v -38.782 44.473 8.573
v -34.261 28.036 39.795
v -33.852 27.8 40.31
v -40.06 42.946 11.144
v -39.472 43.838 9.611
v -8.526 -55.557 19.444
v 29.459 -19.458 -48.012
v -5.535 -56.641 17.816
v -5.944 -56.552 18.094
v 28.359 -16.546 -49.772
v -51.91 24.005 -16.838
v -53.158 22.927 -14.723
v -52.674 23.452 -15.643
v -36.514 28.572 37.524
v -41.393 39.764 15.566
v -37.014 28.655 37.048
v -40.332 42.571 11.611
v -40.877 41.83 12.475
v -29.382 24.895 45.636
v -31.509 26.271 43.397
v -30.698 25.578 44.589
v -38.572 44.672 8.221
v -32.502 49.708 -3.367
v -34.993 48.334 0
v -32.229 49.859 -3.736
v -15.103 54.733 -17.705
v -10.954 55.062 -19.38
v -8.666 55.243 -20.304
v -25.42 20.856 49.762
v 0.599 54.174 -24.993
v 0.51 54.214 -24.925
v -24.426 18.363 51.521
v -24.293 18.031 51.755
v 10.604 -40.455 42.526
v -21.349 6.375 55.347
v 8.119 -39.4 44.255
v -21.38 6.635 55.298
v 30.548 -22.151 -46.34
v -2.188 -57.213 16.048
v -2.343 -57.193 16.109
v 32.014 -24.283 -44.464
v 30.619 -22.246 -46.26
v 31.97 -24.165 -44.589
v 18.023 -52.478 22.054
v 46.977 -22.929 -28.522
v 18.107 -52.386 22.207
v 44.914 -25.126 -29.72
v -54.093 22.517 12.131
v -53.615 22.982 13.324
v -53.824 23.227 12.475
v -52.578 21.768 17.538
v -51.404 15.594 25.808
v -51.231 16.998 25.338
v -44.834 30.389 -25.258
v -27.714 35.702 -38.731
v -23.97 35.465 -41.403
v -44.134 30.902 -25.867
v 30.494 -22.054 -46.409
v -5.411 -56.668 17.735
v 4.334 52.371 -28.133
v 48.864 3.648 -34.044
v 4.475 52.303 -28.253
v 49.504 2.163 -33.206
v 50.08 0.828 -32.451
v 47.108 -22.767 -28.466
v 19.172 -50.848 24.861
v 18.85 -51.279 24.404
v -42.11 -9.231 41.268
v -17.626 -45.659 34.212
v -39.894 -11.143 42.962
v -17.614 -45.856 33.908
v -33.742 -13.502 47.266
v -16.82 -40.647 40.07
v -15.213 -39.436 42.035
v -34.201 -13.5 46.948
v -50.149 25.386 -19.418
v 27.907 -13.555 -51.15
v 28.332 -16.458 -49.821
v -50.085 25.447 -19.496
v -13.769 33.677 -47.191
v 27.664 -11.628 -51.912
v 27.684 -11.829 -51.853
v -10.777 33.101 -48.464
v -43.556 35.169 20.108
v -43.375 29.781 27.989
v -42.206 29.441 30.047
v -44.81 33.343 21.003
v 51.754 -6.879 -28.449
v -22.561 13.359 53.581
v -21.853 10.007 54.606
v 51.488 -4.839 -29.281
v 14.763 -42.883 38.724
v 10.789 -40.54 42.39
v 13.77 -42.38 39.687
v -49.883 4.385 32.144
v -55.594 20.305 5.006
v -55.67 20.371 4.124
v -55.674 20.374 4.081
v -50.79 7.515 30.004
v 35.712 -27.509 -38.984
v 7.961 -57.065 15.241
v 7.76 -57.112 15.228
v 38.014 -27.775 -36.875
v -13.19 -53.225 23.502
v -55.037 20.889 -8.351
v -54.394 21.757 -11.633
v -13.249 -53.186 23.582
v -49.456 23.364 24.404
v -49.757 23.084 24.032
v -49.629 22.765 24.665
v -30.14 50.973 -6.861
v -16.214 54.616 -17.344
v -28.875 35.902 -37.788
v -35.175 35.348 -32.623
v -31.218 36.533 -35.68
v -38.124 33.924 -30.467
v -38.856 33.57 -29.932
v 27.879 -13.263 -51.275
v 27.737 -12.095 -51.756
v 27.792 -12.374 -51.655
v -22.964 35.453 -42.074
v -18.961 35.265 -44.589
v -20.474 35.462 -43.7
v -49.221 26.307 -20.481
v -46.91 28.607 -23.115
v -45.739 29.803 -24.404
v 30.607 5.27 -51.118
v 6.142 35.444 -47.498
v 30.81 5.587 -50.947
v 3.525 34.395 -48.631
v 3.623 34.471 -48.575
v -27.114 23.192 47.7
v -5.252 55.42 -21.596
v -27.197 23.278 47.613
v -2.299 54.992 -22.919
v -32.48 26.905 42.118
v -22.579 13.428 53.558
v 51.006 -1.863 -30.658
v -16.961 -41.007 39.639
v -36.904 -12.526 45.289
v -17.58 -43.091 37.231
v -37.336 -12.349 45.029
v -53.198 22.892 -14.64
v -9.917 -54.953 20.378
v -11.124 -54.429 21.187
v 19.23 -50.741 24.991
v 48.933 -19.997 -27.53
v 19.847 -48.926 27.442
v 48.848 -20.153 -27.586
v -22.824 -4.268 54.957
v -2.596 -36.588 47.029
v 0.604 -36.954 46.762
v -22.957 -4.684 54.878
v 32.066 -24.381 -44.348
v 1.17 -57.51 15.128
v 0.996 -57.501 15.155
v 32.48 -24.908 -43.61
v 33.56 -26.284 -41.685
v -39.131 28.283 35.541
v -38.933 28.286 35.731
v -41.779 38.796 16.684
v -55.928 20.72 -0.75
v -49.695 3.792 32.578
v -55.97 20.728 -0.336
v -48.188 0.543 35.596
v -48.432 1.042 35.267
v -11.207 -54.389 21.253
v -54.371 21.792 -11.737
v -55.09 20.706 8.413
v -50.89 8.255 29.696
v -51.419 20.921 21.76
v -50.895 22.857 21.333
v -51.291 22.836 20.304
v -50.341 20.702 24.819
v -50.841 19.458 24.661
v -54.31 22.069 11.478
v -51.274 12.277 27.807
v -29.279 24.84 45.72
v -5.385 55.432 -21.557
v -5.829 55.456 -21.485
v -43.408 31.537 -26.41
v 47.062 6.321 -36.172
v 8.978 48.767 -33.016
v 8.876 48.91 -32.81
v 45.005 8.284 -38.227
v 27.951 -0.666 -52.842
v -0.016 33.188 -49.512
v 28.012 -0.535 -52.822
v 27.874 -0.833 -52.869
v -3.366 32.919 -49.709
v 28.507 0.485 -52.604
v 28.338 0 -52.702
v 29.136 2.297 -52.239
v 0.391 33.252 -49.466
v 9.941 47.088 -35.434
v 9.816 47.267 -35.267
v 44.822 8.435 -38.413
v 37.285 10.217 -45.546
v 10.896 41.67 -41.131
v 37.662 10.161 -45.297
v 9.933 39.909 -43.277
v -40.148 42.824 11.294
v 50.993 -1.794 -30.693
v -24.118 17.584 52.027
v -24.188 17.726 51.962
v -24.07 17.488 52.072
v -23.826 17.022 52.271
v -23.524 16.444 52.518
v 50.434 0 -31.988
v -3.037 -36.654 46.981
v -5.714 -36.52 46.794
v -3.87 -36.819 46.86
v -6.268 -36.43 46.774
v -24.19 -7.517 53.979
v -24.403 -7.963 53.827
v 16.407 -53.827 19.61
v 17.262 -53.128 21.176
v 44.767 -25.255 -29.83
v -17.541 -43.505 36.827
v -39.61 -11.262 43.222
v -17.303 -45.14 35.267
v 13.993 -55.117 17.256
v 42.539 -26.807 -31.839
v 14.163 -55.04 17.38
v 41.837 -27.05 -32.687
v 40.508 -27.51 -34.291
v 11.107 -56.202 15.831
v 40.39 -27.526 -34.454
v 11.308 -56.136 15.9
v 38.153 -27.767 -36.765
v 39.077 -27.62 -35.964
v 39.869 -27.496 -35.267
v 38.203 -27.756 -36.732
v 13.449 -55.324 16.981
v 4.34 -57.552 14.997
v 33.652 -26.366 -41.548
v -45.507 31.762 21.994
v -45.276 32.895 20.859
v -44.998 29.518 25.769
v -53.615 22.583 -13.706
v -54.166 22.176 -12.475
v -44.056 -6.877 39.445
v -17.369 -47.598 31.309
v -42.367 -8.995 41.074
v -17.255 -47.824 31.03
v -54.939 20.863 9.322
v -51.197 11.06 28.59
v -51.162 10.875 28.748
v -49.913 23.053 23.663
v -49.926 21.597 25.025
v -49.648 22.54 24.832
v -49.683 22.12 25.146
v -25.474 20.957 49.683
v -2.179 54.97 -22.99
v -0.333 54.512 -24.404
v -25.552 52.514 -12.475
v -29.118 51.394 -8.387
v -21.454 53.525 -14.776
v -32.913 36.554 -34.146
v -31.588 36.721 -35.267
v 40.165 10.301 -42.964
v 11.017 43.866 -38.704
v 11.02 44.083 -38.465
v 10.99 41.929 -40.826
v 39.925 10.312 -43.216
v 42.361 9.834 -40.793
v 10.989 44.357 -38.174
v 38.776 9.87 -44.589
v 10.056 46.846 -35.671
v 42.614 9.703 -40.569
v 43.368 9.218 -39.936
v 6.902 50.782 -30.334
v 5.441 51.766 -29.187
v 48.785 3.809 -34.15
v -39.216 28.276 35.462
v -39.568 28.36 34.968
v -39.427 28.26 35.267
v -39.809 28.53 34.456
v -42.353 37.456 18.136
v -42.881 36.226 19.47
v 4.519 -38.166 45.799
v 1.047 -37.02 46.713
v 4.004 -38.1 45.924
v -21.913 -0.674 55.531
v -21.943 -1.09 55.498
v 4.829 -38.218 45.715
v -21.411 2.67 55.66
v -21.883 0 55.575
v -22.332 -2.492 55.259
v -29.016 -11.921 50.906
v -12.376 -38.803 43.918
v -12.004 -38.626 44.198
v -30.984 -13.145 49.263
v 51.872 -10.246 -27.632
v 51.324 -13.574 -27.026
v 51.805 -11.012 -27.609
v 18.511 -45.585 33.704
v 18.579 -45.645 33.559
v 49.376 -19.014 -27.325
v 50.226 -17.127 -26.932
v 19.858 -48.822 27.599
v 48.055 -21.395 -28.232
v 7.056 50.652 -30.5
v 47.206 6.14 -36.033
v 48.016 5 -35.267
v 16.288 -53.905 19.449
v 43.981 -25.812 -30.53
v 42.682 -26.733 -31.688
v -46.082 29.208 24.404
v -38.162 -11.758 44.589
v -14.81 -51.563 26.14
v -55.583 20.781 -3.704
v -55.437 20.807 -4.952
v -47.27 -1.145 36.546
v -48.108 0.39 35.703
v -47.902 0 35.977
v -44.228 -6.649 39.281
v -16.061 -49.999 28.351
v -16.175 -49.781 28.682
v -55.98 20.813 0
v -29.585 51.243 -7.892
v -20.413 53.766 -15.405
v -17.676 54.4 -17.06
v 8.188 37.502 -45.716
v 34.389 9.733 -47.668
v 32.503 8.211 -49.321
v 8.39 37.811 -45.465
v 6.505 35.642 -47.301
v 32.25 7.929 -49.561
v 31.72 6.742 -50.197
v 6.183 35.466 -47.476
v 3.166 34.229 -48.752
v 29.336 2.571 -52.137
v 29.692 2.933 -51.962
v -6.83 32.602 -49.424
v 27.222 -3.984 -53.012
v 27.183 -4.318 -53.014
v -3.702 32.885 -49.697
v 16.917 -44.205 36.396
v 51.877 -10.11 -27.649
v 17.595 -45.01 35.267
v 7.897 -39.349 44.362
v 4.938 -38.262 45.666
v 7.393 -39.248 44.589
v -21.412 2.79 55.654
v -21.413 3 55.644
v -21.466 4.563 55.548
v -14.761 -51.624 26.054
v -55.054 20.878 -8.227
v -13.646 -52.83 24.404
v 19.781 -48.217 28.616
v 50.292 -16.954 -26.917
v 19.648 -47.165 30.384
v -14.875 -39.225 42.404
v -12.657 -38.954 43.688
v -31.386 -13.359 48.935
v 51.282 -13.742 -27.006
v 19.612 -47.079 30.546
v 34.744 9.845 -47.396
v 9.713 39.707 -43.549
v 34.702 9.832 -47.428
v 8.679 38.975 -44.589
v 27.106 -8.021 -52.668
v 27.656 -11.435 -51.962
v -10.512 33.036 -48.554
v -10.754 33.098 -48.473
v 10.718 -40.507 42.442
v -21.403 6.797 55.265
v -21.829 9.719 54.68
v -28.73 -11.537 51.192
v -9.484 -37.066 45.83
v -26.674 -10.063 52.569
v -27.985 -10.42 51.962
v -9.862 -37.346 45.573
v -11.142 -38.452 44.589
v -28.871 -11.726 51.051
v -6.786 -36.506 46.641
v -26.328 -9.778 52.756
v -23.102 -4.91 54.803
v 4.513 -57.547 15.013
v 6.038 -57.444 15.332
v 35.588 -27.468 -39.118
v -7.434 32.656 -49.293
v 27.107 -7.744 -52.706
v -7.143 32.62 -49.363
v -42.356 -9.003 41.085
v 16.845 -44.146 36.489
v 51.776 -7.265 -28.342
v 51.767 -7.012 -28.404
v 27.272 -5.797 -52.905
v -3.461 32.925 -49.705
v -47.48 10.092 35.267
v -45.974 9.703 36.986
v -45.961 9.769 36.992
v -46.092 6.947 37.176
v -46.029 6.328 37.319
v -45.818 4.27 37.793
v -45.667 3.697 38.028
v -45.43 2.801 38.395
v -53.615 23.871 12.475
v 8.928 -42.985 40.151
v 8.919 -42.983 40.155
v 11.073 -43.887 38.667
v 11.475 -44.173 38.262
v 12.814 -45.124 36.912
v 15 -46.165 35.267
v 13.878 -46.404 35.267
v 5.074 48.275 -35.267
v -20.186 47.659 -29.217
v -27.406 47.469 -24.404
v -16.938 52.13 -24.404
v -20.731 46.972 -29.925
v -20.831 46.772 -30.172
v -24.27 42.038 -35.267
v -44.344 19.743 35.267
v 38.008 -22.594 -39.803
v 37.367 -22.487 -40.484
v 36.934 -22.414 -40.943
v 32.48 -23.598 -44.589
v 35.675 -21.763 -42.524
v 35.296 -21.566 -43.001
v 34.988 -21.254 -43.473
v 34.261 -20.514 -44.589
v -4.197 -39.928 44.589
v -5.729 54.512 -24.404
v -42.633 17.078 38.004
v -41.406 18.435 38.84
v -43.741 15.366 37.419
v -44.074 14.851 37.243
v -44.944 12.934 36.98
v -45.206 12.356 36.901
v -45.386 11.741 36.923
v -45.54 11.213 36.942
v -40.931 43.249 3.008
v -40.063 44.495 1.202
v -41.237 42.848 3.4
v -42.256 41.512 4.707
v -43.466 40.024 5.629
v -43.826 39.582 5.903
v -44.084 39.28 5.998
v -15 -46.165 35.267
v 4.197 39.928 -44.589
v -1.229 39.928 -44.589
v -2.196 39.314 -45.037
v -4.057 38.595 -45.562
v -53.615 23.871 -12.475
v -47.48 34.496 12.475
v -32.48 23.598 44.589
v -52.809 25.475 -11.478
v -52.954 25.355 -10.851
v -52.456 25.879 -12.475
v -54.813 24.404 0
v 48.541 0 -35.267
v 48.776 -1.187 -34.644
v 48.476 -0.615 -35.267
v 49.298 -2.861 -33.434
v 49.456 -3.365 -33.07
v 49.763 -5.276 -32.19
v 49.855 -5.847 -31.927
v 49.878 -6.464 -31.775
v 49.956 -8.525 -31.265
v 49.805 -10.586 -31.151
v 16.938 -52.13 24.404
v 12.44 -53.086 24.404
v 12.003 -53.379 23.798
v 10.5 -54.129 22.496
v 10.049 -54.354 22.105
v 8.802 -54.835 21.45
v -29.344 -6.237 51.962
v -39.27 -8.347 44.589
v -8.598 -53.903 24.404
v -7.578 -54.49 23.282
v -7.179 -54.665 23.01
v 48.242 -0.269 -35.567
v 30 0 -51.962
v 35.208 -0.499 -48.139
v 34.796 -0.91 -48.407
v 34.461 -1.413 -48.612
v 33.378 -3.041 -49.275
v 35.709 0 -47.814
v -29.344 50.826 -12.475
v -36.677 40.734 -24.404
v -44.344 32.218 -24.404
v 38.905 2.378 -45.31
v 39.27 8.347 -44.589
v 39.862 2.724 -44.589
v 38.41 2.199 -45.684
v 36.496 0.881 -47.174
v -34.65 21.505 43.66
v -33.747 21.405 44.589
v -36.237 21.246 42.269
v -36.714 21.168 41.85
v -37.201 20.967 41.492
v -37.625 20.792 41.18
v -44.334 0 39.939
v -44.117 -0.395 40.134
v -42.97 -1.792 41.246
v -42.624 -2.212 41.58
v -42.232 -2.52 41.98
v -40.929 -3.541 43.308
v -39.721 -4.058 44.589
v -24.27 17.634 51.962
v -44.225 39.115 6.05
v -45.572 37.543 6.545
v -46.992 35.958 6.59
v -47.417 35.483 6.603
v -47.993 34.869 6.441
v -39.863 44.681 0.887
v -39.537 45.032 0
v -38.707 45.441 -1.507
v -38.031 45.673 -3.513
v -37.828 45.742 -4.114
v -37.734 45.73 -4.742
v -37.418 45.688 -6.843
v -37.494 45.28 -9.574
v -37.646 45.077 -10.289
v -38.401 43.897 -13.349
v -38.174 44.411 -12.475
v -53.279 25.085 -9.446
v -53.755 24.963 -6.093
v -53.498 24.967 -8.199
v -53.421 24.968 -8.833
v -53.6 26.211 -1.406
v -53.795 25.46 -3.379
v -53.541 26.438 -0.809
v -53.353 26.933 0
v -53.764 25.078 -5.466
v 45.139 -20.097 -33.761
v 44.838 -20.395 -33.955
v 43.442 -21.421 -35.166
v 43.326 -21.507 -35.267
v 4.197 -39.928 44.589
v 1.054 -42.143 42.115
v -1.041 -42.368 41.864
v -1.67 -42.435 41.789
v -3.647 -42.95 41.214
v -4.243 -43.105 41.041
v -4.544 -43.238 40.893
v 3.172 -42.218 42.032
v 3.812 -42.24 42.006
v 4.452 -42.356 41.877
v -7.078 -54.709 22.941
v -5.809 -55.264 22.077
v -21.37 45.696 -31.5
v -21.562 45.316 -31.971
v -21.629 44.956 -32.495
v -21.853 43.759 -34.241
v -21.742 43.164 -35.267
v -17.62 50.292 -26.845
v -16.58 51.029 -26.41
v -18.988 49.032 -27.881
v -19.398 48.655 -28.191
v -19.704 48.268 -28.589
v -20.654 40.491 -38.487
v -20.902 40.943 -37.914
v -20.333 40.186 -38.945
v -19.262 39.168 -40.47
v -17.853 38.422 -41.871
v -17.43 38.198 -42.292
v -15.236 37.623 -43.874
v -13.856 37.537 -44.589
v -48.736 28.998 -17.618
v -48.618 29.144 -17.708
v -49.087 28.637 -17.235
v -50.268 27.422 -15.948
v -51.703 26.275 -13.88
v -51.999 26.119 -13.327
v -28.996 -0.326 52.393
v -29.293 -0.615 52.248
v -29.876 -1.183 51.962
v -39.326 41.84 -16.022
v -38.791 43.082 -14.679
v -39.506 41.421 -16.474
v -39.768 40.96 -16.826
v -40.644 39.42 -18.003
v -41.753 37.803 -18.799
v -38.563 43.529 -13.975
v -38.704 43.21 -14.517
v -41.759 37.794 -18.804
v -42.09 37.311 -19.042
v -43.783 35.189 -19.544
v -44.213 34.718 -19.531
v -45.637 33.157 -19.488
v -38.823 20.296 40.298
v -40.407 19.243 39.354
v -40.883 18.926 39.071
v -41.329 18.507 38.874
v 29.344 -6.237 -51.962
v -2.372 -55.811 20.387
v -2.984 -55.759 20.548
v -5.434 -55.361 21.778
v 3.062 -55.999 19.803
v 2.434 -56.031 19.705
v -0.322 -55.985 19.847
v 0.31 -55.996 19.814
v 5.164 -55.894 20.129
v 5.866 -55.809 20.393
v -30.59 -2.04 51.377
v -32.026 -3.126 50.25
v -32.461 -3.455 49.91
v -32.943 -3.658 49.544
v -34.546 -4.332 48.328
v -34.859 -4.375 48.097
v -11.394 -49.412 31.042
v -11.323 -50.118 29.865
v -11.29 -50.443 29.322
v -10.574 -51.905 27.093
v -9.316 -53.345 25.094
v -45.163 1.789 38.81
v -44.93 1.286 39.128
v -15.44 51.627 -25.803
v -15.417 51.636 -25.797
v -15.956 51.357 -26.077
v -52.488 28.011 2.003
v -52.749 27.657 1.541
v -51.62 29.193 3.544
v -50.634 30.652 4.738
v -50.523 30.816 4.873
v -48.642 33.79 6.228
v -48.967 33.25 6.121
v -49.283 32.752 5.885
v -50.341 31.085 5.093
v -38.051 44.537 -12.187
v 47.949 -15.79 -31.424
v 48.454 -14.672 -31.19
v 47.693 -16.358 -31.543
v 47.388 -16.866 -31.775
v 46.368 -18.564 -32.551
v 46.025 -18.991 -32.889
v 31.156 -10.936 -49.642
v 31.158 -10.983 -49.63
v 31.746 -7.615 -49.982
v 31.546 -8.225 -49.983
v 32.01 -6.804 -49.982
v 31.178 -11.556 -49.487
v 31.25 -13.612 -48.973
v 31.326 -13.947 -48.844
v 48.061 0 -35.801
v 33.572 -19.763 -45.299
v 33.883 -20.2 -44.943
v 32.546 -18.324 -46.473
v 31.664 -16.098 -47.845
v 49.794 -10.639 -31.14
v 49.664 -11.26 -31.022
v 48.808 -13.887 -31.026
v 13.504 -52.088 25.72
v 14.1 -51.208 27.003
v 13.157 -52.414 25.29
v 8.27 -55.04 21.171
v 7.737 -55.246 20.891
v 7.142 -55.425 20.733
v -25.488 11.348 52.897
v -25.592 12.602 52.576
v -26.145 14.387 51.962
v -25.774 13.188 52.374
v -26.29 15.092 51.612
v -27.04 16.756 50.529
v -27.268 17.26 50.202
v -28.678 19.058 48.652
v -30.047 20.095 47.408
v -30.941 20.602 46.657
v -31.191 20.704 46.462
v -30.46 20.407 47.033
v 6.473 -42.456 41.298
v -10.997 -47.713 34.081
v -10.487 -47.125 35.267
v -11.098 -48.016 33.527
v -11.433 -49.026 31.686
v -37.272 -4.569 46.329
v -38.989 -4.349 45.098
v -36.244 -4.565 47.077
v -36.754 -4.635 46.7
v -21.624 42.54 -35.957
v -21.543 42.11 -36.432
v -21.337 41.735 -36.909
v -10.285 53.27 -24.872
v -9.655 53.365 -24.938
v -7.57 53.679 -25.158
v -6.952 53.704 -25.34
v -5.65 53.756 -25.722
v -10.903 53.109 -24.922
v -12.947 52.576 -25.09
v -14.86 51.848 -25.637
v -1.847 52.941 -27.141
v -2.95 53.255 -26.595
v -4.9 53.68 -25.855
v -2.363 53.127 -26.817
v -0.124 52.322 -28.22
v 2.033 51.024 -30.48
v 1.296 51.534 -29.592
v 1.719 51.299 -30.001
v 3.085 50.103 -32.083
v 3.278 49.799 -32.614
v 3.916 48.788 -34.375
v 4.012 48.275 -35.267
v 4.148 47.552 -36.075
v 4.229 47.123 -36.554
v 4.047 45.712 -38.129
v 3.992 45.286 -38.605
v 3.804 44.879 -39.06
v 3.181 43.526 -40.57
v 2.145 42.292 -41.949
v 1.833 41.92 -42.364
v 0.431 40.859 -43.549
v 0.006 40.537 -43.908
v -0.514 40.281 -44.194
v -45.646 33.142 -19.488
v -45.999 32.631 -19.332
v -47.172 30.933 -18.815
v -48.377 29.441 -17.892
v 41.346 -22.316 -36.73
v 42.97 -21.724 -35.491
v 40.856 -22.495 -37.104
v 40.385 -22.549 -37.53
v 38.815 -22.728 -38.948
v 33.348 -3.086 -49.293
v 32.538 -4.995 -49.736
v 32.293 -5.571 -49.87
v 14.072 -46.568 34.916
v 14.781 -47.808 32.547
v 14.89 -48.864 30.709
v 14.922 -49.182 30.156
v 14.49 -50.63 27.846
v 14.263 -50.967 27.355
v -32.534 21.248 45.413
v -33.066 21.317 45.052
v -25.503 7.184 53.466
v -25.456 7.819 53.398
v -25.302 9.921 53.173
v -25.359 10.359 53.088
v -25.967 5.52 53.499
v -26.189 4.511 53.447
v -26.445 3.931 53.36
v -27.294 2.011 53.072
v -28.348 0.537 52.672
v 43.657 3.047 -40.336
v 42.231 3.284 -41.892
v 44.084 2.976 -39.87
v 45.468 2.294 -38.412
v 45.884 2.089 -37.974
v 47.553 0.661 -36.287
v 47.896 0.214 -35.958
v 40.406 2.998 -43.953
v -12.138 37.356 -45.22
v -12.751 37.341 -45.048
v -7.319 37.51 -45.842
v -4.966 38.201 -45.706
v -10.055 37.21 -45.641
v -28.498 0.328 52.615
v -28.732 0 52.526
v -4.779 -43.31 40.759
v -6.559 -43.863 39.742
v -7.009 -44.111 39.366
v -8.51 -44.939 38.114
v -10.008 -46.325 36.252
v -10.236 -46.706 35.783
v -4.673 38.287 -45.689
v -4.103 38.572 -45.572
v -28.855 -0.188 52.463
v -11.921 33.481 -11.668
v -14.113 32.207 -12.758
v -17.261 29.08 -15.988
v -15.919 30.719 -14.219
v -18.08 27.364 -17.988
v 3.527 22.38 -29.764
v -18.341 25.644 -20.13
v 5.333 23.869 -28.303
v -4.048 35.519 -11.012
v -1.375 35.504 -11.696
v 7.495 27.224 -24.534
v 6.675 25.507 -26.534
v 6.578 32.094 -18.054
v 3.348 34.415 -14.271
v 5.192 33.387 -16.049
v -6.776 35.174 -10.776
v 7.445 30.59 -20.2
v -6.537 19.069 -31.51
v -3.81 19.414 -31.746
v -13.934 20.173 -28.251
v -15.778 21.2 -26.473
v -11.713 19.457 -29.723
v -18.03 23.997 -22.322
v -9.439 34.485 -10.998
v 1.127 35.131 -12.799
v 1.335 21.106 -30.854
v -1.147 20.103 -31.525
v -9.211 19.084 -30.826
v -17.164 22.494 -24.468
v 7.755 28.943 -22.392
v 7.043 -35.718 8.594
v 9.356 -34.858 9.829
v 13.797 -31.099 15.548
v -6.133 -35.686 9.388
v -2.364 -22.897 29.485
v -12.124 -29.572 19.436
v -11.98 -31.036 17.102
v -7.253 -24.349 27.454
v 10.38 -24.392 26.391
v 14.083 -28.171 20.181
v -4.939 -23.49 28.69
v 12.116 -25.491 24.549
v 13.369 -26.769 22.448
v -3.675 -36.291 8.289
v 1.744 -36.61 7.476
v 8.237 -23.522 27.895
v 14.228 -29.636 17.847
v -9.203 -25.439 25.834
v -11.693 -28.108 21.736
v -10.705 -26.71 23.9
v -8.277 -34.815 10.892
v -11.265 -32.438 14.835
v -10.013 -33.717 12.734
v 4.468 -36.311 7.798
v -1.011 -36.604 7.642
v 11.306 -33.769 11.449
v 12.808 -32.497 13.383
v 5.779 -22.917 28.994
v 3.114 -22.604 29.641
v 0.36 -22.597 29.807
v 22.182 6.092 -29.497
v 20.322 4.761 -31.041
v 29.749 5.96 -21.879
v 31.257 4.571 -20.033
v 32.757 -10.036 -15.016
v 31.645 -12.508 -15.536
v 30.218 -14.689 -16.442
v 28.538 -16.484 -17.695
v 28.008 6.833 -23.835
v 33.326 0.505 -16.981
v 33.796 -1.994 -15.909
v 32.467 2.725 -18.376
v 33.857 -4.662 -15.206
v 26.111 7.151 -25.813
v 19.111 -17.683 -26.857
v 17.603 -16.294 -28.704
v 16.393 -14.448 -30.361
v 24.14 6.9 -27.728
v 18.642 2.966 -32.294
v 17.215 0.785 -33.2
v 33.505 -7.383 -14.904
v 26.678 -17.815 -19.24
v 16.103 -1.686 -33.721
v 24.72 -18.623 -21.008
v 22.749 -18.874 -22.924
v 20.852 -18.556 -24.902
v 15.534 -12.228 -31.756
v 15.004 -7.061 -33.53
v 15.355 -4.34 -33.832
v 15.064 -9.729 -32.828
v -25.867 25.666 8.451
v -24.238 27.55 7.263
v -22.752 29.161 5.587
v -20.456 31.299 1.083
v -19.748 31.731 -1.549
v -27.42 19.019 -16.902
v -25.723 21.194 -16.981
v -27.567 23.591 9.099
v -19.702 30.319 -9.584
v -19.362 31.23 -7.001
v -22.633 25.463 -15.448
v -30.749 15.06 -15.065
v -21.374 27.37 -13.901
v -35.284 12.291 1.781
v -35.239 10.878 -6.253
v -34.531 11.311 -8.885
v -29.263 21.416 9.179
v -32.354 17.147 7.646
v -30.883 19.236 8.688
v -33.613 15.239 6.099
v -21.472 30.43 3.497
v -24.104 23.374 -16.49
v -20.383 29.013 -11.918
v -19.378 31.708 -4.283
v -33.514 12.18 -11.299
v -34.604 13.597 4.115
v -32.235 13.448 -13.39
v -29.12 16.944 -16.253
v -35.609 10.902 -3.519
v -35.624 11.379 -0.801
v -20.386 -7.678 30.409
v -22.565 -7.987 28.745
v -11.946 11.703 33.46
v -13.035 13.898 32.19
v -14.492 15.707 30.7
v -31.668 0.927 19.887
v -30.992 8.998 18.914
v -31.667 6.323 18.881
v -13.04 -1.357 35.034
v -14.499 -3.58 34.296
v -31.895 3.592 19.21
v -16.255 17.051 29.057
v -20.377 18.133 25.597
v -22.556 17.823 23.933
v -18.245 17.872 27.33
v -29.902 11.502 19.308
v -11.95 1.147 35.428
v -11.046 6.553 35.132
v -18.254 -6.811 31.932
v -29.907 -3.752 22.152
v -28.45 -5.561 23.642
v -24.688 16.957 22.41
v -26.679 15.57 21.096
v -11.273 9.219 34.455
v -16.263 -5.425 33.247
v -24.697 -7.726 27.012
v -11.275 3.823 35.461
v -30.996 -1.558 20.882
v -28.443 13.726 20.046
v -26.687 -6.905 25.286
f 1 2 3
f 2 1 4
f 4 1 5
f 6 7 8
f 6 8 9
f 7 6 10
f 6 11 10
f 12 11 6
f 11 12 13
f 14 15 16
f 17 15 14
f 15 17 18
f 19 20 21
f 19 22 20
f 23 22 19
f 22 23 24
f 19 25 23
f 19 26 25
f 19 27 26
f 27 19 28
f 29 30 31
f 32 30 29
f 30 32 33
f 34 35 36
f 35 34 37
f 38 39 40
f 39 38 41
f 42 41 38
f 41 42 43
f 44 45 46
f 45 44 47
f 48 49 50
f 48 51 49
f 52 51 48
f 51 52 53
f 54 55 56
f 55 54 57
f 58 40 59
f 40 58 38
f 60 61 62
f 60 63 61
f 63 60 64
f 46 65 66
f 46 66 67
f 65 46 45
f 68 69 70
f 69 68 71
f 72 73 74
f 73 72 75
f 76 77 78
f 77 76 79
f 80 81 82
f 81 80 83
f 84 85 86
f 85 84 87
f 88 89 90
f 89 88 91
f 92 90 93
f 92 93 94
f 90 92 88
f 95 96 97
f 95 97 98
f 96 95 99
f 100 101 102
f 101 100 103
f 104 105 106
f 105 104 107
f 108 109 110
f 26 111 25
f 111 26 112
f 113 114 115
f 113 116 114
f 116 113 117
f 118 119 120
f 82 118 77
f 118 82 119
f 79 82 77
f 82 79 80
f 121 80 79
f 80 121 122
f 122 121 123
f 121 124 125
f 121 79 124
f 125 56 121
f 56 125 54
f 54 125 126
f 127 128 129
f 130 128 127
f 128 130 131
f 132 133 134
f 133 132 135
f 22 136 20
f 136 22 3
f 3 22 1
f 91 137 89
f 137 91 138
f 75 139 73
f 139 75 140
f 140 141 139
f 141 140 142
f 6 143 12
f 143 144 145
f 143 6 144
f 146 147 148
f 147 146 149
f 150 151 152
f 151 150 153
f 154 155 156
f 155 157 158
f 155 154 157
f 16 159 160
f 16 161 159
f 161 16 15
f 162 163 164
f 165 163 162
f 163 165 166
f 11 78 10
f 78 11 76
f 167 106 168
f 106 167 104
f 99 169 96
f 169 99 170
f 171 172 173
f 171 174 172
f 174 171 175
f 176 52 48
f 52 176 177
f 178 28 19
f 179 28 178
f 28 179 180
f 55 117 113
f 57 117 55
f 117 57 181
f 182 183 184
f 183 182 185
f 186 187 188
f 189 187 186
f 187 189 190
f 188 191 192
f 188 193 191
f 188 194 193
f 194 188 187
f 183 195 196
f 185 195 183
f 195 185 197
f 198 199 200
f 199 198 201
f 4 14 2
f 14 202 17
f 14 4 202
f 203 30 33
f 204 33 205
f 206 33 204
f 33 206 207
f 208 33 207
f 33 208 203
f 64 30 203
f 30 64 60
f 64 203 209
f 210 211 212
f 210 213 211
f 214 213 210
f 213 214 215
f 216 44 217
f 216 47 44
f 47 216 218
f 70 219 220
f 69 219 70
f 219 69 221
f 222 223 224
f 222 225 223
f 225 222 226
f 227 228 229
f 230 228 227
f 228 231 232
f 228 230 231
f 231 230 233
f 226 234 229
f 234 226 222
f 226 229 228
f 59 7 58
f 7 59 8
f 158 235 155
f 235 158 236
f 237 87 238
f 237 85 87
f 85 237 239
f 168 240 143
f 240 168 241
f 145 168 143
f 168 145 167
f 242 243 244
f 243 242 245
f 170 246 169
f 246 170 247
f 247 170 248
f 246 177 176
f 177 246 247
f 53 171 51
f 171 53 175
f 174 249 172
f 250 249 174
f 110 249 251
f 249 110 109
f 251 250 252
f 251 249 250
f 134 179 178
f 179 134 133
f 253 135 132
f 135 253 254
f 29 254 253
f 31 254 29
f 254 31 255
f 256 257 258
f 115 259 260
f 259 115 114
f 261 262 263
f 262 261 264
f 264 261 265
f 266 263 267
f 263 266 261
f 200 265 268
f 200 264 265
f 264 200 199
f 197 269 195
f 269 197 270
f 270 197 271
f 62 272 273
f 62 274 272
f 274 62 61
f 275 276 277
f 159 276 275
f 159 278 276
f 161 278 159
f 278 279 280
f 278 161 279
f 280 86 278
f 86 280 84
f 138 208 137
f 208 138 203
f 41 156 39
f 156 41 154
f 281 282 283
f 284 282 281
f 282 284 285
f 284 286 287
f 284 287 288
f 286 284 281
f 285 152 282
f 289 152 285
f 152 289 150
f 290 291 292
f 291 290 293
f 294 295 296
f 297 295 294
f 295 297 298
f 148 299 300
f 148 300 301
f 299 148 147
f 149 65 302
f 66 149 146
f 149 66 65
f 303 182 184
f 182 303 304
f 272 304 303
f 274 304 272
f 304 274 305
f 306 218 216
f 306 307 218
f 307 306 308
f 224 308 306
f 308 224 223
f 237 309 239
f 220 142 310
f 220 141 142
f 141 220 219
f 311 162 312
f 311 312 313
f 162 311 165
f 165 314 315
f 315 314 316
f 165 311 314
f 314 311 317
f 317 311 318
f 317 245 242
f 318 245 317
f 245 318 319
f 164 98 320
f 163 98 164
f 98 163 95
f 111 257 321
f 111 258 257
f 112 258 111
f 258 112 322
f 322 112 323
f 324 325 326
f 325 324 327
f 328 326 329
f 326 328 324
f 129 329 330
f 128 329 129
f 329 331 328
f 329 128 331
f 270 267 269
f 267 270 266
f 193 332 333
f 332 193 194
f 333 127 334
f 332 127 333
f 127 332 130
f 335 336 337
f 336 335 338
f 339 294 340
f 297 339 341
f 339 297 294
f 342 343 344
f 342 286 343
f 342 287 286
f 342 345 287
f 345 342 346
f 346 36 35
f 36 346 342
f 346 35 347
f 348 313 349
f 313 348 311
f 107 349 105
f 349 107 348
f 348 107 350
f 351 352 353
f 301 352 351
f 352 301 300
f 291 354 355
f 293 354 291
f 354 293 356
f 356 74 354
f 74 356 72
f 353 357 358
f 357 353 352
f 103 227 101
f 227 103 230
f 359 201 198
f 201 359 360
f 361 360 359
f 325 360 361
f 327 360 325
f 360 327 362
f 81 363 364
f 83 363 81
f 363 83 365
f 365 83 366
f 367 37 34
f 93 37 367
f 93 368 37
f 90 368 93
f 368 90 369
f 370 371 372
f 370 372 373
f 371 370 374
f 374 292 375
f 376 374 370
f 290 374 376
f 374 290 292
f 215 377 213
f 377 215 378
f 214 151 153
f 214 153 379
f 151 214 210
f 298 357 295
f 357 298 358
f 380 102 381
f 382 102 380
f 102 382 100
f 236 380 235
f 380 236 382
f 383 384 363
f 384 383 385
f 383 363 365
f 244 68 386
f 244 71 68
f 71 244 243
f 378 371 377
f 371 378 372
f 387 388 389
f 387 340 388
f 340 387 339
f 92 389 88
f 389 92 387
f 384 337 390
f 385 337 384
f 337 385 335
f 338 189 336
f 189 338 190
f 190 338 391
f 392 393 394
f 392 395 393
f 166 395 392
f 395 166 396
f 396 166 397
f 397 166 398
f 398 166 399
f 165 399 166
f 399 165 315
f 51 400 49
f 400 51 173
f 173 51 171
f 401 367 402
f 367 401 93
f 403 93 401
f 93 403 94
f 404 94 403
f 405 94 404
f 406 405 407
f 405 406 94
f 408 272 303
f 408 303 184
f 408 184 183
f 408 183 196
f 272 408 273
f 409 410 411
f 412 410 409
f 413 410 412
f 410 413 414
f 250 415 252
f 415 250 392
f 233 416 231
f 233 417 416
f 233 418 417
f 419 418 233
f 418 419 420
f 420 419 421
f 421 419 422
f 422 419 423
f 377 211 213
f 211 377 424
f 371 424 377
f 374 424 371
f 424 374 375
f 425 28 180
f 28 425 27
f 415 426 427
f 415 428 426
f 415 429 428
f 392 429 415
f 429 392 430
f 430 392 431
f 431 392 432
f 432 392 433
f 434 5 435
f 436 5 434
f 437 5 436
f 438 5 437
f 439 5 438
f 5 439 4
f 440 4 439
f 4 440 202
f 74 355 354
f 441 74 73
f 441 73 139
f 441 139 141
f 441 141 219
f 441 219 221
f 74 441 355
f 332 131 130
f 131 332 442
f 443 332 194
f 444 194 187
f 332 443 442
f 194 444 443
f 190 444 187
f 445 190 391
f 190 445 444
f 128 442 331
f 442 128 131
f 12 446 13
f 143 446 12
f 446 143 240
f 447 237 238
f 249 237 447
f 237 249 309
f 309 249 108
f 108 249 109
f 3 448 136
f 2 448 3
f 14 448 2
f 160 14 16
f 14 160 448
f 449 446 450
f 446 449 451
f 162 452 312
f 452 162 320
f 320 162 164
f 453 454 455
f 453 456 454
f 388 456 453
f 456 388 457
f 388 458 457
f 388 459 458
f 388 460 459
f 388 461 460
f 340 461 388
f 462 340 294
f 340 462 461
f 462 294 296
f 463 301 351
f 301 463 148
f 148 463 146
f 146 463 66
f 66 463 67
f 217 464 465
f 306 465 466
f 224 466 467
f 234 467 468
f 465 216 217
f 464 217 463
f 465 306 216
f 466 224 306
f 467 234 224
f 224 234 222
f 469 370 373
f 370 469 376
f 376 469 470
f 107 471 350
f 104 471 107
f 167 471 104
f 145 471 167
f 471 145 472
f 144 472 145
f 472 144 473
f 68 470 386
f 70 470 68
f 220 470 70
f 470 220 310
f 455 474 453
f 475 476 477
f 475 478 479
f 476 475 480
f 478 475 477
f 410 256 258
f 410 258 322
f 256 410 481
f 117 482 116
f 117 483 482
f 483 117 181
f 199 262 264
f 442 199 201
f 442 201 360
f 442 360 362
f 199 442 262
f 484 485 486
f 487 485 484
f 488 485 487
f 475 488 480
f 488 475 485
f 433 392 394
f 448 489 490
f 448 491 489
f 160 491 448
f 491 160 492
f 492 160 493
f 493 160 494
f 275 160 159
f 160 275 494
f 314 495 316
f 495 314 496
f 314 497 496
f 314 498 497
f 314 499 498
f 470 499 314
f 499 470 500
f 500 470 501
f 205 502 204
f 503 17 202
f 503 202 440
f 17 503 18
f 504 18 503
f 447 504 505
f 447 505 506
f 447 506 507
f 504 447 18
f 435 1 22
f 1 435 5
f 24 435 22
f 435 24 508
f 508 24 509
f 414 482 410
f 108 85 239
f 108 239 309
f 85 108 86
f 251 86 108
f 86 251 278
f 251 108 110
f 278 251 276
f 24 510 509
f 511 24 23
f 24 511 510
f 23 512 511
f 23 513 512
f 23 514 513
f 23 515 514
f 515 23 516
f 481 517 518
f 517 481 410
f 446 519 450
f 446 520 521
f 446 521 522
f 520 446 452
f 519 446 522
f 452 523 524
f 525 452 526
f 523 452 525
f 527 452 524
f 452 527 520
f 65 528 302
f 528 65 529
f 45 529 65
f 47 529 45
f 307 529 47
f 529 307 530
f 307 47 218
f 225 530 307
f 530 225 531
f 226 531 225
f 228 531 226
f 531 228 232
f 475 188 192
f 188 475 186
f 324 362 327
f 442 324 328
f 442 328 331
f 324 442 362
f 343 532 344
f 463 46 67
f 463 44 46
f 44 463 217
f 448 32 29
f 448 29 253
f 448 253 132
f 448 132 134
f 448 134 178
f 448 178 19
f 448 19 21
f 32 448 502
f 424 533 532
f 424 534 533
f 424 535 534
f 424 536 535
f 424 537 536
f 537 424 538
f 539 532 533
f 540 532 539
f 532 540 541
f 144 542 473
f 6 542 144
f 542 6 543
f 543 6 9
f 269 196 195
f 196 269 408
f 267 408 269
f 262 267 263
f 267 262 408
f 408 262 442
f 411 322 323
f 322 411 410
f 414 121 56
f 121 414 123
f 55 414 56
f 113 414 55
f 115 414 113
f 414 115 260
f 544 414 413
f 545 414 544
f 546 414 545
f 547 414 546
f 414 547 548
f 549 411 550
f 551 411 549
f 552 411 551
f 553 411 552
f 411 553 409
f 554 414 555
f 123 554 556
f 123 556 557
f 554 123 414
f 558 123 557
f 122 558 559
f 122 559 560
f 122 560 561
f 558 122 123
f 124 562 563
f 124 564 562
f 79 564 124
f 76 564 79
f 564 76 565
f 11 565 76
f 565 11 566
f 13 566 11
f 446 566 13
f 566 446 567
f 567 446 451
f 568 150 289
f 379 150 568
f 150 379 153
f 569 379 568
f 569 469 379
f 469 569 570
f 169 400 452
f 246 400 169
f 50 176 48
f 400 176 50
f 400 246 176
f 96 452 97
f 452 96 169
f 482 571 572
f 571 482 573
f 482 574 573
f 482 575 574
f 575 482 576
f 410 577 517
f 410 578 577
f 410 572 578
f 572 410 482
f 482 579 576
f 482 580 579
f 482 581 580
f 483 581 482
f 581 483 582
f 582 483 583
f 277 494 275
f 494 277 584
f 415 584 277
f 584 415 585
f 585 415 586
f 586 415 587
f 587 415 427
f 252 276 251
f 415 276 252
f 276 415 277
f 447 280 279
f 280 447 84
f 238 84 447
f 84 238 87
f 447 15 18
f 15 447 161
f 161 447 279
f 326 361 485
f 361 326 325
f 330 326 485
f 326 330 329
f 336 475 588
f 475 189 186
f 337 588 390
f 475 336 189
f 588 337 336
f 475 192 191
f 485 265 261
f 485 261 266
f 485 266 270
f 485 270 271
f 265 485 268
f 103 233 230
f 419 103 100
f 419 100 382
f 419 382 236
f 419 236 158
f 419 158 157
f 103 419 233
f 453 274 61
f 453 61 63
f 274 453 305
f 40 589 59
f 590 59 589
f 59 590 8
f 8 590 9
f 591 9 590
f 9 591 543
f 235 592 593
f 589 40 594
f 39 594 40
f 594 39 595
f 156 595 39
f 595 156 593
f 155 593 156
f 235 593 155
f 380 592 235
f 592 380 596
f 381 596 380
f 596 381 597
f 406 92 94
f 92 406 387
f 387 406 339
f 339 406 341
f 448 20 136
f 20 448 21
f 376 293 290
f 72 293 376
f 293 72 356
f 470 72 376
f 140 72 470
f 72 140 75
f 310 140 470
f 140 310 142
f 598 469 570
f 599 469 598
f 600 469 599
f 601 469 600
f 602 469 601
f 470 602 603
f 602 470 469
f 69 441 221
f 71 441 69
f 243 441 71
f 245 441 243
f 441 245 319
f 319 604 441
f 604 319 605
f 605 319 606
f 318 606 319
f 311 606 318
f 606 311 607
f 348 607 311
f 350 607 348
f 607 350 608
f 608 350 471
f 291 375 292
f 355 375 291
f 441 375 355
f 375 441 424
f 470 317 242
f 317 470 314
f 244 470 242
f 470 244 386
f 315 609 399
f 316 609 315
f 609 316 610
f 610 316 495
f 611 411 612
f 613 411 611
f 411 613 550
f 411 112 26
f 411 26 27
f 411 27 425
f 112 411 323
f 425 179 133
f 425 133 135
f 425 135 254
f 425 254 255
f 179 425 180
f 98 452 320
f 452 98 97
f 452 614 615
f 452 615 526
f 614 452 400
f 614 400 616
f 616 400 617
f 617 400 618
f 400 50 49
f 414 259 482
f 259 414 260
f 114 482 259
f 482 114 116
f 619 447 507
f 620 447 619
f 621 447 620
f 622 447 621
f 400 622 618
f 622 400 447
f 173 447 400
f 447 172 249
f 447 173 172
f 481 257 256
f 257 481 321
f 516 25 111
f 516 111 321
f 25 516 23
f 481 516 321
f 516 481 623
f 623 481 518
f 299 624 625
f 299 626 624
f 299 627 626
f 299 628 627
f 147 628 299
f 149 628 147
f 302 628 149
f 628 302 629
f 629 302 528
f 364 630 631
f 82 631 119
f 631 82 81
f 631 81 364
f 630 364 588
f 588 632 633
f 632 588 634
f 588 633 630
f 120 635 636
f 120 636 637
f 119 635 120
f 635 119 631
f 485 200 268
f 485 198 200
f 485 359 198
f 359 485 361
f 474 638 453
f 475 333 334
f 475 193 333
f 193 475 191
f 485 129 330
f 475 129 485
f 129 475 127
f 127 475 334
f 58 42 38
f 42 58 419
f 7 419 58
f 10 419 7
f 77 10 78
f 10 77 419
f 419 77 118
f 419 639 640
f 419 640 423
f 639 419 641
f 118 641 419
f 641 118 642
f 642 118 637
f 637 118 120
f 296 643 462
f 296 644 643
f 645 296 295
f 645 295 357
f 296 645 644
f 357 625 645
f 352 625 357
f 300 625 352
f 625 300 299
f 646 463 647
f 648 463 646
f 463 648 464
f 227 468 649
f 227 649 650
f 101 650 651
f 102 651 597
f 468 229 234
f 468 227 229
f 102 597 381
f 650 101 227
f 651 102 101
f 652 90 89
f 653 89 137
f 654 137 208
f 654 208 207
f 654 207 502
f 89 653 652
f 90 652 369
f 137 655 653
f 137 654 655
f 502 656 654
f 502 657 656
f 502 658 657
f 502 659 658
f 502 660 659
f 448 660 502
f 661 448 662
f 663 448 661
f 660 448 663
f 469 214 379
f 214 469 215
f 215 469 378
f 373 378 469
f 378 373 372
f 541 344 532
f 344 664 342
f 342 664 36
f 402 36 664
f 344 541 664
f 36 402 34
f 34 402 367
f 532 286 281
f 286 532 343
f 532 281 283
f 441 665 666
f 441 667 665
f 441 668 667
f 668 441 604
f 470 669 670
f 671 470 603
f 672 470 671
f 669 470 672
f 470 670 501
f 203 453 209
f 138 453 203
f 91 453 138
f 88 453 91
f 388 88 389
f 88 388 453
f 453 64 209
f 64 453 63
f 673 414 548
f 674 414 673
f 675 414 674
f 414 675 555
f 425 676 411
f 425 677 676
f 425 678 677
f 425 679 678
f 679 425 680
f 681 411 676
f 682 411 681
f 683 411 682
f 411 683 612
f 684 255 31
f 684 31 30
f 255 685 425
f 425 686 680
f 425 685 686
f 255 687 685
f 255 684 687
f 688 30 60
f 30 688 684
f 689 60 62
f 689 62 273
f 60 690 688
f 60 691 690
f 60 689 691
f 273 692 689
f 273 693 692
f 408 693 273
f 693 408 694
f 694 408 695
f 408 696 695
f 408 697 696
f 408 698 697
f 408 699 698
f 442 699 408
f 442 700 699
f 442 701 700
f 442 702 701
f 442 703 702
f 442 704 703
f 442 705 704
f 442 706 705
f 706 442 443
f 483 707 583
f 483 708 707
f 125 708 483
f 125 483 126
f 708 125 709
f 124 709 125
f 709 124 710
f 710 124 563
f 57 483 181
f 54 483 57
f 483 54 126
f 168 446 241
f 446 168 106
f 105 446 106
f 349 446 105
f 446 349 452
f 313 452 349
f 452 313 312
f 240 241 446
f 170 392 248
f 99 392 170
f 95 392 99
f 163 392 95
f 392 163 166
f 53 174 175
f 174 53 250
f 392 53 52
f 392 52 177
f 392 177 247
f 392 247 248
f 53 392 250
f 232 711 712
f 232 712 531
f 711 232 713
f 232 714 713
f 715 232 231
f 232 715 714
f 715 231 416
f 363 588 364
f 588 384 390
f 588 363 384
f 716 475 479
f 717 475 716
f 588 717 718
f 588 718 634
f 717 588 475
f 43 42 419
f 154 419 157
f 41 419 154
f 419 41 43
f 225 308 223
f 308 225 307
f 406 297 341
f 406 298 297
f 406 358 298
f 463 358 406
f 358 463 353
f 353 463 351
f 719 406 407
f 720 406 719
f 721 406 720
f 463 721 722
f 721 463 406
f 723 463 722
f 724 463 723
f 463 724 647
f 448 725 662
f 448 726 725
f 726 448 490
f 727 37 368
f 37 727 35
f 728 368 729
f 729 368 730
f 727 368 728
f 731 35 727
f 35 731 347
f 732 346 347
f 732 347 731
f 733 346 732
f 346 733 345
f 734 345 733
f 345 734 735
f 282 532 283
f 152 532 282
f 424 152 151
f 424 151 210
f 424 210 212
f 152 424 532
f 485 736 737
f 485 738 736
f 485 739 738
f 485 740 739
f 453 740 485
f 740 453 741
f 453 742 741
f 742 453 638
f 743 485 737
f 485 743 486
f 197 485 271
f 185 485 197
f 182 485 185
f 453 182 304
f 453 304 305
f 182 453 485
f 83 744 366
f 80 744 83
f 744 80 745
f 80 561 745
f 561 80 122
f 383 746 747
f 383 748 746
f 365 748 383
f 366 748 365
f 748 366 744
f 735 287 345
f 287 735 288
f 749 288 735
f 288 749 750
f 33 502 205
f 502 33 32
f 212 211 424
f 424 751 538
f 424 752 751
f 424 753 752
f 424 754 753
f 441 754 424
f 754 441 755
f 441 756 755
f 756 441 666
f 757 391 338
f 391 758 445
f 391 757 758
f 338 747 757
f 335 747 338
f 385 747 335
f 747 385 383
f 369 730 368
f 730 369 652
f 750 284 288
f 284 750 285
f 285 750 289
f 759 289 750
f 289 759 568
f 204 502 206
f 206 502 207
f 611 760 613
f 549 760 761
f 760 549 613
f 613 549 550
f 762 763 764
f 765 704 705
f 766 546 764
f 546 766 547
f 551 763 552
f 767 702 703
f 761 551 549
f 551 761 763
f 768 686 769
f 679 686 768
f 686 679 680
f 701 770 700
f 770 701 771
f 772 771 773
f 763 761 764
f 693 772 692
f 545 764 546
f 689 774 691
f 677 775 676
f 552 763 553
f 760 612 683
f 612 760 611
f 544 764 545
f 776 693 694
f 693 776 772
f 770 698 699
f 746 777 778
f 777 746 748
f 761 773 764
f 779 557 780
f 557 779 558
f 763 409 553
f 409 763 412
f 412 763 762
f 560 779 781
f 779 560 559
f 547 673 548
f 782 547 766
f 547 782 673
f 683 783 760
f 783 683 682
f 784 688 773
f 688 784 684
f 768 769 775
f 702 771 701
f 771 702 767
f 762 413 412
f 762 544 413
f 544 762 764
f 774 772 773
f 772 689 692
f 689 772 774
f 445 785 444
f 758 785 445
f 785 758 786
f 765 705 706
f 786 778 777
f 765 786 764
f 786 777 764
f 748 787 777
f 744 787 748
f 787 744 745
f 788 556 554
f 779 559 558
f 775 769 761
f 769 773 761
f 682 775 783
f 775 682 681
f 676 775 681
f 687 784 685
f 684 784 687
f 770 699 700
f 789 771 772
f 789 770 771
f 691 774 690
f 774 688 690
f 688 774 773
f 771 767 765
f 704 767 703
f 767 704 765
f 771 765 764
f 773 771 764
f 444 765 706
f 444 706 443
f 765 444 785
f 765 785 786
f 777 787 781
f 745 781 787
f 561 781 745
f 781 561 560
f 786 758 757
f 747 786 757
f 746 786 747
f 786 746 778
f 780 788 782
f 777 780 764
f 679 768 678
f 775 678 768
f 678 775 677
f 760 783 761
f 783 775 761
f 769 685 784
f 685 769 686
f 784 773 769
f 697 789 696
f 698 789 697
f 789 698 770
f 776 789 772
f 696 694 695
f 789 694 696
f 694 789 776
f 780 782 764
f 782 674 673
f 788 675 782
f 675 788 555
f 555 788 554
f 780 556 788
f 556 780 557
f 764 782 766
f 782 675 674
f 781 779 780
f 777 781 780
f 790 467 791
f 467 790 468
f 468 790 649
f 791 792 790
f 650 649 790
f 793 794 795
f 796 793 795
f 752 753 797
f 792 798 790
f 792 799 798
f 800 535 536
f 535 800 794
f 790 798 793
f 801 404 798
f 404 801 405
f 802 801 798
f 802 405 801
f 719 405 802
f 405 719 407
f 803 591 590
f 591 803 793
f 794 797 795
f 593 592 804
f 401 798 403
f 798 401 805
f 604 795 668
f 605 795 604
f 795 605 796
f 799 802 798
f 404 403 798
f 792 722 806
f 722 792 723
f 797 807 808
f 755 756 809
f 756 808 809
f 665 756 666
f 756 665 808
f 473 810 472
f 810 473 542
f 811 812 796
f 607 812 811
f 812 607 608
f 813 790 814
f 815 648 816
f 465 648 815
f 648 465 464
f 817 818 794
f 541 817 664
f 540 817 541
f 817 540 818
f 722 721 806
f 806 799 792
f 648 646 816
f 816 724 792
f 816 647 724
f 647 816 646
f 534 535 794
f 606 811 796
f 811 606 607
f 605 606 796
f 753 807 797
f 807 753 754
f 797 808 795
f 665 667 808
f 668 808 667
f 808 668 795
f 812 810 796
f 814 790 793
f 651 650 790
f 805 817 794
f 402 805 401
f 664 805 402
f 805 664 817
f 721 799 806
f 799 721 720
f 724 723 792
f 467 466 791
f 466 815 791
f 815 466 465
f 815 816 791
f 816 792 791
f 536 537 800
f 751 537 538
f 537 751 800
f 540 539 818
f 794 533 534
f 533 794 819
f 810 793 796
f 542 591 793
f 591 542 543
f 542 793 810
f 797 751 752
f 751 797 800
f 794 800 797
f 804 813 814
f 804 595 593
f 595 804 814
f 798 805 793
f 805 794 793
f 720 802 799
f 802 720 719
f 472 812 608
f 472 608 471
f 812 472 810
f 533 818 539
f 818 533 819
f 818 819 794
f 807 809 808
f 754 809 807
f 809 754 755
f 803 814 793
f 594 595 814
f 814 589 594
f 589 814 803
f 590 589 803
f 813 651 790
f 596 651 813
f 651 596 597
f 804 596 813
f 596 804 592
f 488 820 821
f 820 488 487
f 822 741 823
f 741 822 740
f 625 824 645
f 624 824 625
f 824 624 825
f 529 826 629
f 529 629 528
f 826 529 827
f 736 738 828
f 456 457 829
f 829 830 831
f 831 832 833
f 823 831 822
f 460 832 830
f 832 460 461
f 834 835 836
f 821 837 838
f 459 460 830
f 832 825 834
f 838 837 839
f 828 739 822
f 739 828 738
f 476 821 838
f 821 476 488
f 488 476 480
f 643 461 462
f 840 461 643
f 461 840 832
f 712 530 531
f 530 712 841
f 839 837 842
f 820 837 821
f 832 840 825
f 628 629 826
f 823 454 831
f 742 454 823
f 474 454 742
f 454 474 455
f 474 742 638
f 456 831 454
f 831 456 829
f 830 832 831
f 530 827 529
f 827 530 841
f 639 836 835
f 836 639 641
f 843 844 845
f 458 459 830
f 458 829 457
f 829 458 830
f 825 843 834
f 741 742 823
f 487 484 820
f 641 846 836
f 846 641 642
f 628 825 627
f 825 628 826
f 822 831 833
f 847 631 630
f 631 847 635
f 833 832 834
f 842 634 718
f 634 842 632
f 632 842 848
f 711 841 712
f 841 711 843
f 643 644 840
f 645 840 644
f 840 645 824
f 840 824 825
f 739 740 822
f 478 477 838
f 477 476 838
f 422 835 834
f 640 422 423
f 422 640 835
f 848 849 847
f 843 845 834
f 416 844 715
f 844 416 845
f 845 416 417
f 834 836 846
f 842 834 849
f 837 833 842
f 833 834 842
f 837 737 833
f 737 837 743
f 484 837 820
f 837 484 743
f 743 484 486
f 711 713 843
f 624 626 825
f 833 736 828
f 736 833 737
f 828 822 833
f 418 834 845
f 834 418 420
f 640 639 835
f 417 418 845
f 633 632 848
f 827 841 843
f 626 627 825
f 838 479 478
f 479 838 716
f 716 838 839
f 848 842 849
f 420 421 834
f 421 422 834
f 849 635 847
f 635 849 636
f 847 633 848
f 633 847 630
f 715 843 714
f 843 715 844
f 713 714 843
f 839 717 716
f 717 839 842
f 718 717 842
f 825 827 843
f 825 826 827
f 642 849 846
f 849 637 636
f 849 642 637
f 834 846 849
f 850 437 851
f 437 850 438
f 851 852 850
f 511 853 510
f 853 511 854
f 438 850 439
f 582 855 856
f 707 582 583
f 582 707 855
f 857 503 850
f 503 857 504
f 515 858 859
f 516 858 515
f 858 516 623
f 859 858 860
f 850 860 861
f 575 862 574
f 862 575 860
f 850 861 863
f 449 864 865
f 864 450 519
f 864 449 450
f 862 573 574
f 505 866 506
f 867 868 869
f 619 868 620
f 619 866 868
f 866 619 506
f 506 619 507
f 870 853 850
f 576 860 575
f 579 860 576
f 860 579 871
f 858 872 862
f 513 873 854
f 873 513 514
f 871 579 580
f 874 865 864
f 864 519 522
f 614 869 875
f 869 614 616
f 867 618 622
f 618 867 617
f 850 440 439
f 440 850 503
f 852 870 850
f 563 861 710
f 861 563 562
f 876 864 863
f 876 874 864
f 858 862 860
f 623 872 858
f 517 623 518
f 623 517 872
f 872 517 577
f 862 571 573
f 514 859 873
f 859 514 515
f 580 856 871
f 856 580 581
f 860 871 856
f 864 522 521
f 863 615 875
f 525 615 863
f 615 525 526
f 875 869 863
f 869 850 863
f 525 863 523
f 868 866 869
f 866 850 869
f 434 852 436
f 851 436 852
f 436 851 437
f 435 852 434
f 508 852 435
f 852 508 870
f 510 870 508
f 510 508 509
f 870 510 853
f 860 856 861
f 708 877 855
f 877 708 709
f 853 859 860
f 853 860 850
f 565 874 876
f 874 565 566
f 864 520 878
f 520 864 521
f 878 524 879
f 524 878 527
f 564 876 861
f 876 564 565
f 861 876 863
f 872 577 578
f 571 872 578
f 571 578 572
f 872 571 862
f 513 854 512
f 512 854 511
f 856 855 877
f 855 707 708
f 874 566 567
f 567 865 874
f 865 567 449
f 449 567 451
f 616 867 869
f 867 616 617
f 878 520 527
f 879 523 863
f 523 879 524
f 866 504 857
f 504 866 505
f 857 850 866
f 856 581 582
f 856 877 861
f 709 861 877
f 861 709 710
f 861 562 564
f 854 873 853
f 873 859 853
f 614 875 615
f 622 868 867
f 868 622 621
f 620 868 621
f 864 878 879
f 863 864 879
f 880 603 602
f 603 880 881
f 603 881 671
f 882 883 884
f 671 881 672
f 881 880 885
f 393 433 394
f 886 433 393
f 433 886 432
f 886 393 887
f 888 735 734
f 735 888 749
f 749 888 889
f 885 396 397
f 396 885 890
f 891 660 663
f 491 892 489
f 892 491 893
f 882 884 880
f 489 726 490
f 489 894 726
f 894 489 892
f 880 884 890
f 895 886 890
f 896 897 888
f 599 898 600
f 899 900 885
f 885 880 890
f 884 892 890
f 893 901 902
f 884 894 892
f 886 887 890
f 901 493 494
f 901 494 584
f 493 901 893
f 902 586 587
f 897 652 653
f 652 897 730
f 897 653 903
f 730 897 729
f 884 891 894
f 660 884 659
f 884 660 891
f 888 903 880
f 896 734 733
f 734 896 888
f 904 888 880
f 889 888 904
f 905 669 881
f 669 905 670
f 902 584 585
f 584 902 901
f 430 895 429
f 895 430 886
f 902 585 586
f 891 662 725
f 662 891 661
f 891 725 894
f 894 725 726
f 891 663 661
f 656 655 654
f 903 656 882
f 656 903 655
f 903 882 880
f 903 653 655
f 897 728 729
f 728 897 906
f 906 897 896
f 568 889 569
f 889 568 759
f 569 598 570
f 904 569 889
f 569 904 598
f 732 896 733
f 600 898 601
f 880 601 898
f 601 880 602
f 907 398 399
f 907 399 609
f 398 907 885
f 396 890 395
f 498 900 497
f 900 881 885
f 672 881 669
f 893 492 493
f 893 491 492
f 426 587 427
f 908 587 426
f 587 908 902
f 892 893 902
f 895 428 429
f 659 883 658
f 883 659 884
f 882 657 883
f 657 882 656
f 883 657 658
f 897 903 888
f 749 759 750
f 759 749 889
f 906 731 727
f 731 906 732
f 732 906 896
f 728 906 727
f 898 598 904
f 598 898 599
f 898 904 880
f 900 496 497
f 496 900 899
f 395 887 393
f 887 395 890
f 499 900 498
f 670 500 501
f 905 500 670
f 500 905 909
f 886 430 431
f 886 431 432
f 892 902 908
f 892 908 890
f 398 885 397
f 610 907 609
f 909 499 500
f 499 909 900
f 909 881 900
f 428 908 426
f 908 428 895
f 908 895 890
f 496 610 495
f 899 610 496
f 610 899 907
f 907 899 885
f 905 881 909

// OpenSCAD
difference() {
	intersection() {
		hull() {
			rotate(a = -131.8845294379, v = [-0.3980578318, -0.6291407358, 0.0000000000]) {
				rotate(a = -90.0000000000, v = [0.0523082905, -0.9986309843, 0.0000000000]) {
					cylinder(h = 60, r = 16.2000000000);
				}
			}
			rotate(a = -131.8845294379, v = [-0.3980578318, -0.6291407358, 0.0000000000]) {
				rotate(a = -90.0000000000, v = [-0.2079387890, 0.9781418404, 0.0000000000]) {
					cylinder(h = 60, r = 16.2000000000);
				}
			}
			rotate(a = -131.8845294379, v = [-0.3980578318, -0.6291407358, 0.0000000000]) {
				rotate(a = -13.9195899171, v = [0.1611591317, -0.1785967851, 0.0000000000]) {
					cylinder(h = 60, r = 16.2000000000);
				}
			}
			rotate(a = -131.8845294379, v = [-0.3980578318, -0.6291407358, 0.0000000000]) {
				rotate(a = -131.4597256445, v = [-0.3177290658, -0.6787345082, 0.0000000000]) {
					cylinder(h = 60, r = 16.2000000000);
				}
			}
			rotate(a = -131.8845294379, v = [-0.3980578318, -0.6291407358, 0.0000000000]) {
				rotate(a = -164.1406512906, v = [-0.0773689745, 0.2620958769, 0.0000000000]) {
					cylinder(h = 60, r = 16.2000000000);
				}
			}
		}
		sphere(r = 60);
	}
	union() {
		rotate(a = -131.8845294379, v = [-0.3980578318, -0.6291407358, 0.0000000000]) {
			rotate(a = -90.0000000000, v = [0.0523082905, -0.9986309843, 0.0000000000]) {
				translate(v = [0, 0, 35]) {
					cylinder(h = 100, r = 13.2000000000);
				}
			}
		}
		rotate(a = -131.8845294379, v = [-0.3980578318, -0.6291407358, 0.0000000000]) {
			rotate(a = -90.0000000000, v = [-0.2079387890, 0.9781418404, 0.0000000000]) {
				translate(v = [0, 0, 35]) {
					cylinder(h = 100, r = 13.2000000000);
				}
			}
		}
		rotate(a = -131.8845294379, v = [-0.3980578318, -0.6291407358, 0.0000000000]) {
			rotate(a = -13.9195899171, v = [0.1611591317, -0.1785967851, 0.0000000000]) {
				translate(v = [0, 0, 35]) {
					cylinder(h = 100, r = 13.2000000000);
				}
			}
		}
		rotate(a = -131.8845294379, v = [-0.3980578318, -0.6291407358, 0.0000000000]) {
			rotate(a = -131.4597256445, v = [-0.3177290658, -0.6787345082, 0.0000000000]) {
				translate(v = [0, 0, 35]) {
					cylinder(h = 100, r = 13.2000000000);
				}
			}
		}
		rotate(a = -131.8845294379, v = [-0.3980578318, -0.6291407358, 0.0000000000]) {
			rotate(a = -164.1406512906, v = [-0.0773689745, 0.2620958769, 0.0000000000]) {
				translate(v = [0, 0, 35]) {
					cylinder(h = 100, r = 13.2000000000);
				}
			}
		}
	}
}
